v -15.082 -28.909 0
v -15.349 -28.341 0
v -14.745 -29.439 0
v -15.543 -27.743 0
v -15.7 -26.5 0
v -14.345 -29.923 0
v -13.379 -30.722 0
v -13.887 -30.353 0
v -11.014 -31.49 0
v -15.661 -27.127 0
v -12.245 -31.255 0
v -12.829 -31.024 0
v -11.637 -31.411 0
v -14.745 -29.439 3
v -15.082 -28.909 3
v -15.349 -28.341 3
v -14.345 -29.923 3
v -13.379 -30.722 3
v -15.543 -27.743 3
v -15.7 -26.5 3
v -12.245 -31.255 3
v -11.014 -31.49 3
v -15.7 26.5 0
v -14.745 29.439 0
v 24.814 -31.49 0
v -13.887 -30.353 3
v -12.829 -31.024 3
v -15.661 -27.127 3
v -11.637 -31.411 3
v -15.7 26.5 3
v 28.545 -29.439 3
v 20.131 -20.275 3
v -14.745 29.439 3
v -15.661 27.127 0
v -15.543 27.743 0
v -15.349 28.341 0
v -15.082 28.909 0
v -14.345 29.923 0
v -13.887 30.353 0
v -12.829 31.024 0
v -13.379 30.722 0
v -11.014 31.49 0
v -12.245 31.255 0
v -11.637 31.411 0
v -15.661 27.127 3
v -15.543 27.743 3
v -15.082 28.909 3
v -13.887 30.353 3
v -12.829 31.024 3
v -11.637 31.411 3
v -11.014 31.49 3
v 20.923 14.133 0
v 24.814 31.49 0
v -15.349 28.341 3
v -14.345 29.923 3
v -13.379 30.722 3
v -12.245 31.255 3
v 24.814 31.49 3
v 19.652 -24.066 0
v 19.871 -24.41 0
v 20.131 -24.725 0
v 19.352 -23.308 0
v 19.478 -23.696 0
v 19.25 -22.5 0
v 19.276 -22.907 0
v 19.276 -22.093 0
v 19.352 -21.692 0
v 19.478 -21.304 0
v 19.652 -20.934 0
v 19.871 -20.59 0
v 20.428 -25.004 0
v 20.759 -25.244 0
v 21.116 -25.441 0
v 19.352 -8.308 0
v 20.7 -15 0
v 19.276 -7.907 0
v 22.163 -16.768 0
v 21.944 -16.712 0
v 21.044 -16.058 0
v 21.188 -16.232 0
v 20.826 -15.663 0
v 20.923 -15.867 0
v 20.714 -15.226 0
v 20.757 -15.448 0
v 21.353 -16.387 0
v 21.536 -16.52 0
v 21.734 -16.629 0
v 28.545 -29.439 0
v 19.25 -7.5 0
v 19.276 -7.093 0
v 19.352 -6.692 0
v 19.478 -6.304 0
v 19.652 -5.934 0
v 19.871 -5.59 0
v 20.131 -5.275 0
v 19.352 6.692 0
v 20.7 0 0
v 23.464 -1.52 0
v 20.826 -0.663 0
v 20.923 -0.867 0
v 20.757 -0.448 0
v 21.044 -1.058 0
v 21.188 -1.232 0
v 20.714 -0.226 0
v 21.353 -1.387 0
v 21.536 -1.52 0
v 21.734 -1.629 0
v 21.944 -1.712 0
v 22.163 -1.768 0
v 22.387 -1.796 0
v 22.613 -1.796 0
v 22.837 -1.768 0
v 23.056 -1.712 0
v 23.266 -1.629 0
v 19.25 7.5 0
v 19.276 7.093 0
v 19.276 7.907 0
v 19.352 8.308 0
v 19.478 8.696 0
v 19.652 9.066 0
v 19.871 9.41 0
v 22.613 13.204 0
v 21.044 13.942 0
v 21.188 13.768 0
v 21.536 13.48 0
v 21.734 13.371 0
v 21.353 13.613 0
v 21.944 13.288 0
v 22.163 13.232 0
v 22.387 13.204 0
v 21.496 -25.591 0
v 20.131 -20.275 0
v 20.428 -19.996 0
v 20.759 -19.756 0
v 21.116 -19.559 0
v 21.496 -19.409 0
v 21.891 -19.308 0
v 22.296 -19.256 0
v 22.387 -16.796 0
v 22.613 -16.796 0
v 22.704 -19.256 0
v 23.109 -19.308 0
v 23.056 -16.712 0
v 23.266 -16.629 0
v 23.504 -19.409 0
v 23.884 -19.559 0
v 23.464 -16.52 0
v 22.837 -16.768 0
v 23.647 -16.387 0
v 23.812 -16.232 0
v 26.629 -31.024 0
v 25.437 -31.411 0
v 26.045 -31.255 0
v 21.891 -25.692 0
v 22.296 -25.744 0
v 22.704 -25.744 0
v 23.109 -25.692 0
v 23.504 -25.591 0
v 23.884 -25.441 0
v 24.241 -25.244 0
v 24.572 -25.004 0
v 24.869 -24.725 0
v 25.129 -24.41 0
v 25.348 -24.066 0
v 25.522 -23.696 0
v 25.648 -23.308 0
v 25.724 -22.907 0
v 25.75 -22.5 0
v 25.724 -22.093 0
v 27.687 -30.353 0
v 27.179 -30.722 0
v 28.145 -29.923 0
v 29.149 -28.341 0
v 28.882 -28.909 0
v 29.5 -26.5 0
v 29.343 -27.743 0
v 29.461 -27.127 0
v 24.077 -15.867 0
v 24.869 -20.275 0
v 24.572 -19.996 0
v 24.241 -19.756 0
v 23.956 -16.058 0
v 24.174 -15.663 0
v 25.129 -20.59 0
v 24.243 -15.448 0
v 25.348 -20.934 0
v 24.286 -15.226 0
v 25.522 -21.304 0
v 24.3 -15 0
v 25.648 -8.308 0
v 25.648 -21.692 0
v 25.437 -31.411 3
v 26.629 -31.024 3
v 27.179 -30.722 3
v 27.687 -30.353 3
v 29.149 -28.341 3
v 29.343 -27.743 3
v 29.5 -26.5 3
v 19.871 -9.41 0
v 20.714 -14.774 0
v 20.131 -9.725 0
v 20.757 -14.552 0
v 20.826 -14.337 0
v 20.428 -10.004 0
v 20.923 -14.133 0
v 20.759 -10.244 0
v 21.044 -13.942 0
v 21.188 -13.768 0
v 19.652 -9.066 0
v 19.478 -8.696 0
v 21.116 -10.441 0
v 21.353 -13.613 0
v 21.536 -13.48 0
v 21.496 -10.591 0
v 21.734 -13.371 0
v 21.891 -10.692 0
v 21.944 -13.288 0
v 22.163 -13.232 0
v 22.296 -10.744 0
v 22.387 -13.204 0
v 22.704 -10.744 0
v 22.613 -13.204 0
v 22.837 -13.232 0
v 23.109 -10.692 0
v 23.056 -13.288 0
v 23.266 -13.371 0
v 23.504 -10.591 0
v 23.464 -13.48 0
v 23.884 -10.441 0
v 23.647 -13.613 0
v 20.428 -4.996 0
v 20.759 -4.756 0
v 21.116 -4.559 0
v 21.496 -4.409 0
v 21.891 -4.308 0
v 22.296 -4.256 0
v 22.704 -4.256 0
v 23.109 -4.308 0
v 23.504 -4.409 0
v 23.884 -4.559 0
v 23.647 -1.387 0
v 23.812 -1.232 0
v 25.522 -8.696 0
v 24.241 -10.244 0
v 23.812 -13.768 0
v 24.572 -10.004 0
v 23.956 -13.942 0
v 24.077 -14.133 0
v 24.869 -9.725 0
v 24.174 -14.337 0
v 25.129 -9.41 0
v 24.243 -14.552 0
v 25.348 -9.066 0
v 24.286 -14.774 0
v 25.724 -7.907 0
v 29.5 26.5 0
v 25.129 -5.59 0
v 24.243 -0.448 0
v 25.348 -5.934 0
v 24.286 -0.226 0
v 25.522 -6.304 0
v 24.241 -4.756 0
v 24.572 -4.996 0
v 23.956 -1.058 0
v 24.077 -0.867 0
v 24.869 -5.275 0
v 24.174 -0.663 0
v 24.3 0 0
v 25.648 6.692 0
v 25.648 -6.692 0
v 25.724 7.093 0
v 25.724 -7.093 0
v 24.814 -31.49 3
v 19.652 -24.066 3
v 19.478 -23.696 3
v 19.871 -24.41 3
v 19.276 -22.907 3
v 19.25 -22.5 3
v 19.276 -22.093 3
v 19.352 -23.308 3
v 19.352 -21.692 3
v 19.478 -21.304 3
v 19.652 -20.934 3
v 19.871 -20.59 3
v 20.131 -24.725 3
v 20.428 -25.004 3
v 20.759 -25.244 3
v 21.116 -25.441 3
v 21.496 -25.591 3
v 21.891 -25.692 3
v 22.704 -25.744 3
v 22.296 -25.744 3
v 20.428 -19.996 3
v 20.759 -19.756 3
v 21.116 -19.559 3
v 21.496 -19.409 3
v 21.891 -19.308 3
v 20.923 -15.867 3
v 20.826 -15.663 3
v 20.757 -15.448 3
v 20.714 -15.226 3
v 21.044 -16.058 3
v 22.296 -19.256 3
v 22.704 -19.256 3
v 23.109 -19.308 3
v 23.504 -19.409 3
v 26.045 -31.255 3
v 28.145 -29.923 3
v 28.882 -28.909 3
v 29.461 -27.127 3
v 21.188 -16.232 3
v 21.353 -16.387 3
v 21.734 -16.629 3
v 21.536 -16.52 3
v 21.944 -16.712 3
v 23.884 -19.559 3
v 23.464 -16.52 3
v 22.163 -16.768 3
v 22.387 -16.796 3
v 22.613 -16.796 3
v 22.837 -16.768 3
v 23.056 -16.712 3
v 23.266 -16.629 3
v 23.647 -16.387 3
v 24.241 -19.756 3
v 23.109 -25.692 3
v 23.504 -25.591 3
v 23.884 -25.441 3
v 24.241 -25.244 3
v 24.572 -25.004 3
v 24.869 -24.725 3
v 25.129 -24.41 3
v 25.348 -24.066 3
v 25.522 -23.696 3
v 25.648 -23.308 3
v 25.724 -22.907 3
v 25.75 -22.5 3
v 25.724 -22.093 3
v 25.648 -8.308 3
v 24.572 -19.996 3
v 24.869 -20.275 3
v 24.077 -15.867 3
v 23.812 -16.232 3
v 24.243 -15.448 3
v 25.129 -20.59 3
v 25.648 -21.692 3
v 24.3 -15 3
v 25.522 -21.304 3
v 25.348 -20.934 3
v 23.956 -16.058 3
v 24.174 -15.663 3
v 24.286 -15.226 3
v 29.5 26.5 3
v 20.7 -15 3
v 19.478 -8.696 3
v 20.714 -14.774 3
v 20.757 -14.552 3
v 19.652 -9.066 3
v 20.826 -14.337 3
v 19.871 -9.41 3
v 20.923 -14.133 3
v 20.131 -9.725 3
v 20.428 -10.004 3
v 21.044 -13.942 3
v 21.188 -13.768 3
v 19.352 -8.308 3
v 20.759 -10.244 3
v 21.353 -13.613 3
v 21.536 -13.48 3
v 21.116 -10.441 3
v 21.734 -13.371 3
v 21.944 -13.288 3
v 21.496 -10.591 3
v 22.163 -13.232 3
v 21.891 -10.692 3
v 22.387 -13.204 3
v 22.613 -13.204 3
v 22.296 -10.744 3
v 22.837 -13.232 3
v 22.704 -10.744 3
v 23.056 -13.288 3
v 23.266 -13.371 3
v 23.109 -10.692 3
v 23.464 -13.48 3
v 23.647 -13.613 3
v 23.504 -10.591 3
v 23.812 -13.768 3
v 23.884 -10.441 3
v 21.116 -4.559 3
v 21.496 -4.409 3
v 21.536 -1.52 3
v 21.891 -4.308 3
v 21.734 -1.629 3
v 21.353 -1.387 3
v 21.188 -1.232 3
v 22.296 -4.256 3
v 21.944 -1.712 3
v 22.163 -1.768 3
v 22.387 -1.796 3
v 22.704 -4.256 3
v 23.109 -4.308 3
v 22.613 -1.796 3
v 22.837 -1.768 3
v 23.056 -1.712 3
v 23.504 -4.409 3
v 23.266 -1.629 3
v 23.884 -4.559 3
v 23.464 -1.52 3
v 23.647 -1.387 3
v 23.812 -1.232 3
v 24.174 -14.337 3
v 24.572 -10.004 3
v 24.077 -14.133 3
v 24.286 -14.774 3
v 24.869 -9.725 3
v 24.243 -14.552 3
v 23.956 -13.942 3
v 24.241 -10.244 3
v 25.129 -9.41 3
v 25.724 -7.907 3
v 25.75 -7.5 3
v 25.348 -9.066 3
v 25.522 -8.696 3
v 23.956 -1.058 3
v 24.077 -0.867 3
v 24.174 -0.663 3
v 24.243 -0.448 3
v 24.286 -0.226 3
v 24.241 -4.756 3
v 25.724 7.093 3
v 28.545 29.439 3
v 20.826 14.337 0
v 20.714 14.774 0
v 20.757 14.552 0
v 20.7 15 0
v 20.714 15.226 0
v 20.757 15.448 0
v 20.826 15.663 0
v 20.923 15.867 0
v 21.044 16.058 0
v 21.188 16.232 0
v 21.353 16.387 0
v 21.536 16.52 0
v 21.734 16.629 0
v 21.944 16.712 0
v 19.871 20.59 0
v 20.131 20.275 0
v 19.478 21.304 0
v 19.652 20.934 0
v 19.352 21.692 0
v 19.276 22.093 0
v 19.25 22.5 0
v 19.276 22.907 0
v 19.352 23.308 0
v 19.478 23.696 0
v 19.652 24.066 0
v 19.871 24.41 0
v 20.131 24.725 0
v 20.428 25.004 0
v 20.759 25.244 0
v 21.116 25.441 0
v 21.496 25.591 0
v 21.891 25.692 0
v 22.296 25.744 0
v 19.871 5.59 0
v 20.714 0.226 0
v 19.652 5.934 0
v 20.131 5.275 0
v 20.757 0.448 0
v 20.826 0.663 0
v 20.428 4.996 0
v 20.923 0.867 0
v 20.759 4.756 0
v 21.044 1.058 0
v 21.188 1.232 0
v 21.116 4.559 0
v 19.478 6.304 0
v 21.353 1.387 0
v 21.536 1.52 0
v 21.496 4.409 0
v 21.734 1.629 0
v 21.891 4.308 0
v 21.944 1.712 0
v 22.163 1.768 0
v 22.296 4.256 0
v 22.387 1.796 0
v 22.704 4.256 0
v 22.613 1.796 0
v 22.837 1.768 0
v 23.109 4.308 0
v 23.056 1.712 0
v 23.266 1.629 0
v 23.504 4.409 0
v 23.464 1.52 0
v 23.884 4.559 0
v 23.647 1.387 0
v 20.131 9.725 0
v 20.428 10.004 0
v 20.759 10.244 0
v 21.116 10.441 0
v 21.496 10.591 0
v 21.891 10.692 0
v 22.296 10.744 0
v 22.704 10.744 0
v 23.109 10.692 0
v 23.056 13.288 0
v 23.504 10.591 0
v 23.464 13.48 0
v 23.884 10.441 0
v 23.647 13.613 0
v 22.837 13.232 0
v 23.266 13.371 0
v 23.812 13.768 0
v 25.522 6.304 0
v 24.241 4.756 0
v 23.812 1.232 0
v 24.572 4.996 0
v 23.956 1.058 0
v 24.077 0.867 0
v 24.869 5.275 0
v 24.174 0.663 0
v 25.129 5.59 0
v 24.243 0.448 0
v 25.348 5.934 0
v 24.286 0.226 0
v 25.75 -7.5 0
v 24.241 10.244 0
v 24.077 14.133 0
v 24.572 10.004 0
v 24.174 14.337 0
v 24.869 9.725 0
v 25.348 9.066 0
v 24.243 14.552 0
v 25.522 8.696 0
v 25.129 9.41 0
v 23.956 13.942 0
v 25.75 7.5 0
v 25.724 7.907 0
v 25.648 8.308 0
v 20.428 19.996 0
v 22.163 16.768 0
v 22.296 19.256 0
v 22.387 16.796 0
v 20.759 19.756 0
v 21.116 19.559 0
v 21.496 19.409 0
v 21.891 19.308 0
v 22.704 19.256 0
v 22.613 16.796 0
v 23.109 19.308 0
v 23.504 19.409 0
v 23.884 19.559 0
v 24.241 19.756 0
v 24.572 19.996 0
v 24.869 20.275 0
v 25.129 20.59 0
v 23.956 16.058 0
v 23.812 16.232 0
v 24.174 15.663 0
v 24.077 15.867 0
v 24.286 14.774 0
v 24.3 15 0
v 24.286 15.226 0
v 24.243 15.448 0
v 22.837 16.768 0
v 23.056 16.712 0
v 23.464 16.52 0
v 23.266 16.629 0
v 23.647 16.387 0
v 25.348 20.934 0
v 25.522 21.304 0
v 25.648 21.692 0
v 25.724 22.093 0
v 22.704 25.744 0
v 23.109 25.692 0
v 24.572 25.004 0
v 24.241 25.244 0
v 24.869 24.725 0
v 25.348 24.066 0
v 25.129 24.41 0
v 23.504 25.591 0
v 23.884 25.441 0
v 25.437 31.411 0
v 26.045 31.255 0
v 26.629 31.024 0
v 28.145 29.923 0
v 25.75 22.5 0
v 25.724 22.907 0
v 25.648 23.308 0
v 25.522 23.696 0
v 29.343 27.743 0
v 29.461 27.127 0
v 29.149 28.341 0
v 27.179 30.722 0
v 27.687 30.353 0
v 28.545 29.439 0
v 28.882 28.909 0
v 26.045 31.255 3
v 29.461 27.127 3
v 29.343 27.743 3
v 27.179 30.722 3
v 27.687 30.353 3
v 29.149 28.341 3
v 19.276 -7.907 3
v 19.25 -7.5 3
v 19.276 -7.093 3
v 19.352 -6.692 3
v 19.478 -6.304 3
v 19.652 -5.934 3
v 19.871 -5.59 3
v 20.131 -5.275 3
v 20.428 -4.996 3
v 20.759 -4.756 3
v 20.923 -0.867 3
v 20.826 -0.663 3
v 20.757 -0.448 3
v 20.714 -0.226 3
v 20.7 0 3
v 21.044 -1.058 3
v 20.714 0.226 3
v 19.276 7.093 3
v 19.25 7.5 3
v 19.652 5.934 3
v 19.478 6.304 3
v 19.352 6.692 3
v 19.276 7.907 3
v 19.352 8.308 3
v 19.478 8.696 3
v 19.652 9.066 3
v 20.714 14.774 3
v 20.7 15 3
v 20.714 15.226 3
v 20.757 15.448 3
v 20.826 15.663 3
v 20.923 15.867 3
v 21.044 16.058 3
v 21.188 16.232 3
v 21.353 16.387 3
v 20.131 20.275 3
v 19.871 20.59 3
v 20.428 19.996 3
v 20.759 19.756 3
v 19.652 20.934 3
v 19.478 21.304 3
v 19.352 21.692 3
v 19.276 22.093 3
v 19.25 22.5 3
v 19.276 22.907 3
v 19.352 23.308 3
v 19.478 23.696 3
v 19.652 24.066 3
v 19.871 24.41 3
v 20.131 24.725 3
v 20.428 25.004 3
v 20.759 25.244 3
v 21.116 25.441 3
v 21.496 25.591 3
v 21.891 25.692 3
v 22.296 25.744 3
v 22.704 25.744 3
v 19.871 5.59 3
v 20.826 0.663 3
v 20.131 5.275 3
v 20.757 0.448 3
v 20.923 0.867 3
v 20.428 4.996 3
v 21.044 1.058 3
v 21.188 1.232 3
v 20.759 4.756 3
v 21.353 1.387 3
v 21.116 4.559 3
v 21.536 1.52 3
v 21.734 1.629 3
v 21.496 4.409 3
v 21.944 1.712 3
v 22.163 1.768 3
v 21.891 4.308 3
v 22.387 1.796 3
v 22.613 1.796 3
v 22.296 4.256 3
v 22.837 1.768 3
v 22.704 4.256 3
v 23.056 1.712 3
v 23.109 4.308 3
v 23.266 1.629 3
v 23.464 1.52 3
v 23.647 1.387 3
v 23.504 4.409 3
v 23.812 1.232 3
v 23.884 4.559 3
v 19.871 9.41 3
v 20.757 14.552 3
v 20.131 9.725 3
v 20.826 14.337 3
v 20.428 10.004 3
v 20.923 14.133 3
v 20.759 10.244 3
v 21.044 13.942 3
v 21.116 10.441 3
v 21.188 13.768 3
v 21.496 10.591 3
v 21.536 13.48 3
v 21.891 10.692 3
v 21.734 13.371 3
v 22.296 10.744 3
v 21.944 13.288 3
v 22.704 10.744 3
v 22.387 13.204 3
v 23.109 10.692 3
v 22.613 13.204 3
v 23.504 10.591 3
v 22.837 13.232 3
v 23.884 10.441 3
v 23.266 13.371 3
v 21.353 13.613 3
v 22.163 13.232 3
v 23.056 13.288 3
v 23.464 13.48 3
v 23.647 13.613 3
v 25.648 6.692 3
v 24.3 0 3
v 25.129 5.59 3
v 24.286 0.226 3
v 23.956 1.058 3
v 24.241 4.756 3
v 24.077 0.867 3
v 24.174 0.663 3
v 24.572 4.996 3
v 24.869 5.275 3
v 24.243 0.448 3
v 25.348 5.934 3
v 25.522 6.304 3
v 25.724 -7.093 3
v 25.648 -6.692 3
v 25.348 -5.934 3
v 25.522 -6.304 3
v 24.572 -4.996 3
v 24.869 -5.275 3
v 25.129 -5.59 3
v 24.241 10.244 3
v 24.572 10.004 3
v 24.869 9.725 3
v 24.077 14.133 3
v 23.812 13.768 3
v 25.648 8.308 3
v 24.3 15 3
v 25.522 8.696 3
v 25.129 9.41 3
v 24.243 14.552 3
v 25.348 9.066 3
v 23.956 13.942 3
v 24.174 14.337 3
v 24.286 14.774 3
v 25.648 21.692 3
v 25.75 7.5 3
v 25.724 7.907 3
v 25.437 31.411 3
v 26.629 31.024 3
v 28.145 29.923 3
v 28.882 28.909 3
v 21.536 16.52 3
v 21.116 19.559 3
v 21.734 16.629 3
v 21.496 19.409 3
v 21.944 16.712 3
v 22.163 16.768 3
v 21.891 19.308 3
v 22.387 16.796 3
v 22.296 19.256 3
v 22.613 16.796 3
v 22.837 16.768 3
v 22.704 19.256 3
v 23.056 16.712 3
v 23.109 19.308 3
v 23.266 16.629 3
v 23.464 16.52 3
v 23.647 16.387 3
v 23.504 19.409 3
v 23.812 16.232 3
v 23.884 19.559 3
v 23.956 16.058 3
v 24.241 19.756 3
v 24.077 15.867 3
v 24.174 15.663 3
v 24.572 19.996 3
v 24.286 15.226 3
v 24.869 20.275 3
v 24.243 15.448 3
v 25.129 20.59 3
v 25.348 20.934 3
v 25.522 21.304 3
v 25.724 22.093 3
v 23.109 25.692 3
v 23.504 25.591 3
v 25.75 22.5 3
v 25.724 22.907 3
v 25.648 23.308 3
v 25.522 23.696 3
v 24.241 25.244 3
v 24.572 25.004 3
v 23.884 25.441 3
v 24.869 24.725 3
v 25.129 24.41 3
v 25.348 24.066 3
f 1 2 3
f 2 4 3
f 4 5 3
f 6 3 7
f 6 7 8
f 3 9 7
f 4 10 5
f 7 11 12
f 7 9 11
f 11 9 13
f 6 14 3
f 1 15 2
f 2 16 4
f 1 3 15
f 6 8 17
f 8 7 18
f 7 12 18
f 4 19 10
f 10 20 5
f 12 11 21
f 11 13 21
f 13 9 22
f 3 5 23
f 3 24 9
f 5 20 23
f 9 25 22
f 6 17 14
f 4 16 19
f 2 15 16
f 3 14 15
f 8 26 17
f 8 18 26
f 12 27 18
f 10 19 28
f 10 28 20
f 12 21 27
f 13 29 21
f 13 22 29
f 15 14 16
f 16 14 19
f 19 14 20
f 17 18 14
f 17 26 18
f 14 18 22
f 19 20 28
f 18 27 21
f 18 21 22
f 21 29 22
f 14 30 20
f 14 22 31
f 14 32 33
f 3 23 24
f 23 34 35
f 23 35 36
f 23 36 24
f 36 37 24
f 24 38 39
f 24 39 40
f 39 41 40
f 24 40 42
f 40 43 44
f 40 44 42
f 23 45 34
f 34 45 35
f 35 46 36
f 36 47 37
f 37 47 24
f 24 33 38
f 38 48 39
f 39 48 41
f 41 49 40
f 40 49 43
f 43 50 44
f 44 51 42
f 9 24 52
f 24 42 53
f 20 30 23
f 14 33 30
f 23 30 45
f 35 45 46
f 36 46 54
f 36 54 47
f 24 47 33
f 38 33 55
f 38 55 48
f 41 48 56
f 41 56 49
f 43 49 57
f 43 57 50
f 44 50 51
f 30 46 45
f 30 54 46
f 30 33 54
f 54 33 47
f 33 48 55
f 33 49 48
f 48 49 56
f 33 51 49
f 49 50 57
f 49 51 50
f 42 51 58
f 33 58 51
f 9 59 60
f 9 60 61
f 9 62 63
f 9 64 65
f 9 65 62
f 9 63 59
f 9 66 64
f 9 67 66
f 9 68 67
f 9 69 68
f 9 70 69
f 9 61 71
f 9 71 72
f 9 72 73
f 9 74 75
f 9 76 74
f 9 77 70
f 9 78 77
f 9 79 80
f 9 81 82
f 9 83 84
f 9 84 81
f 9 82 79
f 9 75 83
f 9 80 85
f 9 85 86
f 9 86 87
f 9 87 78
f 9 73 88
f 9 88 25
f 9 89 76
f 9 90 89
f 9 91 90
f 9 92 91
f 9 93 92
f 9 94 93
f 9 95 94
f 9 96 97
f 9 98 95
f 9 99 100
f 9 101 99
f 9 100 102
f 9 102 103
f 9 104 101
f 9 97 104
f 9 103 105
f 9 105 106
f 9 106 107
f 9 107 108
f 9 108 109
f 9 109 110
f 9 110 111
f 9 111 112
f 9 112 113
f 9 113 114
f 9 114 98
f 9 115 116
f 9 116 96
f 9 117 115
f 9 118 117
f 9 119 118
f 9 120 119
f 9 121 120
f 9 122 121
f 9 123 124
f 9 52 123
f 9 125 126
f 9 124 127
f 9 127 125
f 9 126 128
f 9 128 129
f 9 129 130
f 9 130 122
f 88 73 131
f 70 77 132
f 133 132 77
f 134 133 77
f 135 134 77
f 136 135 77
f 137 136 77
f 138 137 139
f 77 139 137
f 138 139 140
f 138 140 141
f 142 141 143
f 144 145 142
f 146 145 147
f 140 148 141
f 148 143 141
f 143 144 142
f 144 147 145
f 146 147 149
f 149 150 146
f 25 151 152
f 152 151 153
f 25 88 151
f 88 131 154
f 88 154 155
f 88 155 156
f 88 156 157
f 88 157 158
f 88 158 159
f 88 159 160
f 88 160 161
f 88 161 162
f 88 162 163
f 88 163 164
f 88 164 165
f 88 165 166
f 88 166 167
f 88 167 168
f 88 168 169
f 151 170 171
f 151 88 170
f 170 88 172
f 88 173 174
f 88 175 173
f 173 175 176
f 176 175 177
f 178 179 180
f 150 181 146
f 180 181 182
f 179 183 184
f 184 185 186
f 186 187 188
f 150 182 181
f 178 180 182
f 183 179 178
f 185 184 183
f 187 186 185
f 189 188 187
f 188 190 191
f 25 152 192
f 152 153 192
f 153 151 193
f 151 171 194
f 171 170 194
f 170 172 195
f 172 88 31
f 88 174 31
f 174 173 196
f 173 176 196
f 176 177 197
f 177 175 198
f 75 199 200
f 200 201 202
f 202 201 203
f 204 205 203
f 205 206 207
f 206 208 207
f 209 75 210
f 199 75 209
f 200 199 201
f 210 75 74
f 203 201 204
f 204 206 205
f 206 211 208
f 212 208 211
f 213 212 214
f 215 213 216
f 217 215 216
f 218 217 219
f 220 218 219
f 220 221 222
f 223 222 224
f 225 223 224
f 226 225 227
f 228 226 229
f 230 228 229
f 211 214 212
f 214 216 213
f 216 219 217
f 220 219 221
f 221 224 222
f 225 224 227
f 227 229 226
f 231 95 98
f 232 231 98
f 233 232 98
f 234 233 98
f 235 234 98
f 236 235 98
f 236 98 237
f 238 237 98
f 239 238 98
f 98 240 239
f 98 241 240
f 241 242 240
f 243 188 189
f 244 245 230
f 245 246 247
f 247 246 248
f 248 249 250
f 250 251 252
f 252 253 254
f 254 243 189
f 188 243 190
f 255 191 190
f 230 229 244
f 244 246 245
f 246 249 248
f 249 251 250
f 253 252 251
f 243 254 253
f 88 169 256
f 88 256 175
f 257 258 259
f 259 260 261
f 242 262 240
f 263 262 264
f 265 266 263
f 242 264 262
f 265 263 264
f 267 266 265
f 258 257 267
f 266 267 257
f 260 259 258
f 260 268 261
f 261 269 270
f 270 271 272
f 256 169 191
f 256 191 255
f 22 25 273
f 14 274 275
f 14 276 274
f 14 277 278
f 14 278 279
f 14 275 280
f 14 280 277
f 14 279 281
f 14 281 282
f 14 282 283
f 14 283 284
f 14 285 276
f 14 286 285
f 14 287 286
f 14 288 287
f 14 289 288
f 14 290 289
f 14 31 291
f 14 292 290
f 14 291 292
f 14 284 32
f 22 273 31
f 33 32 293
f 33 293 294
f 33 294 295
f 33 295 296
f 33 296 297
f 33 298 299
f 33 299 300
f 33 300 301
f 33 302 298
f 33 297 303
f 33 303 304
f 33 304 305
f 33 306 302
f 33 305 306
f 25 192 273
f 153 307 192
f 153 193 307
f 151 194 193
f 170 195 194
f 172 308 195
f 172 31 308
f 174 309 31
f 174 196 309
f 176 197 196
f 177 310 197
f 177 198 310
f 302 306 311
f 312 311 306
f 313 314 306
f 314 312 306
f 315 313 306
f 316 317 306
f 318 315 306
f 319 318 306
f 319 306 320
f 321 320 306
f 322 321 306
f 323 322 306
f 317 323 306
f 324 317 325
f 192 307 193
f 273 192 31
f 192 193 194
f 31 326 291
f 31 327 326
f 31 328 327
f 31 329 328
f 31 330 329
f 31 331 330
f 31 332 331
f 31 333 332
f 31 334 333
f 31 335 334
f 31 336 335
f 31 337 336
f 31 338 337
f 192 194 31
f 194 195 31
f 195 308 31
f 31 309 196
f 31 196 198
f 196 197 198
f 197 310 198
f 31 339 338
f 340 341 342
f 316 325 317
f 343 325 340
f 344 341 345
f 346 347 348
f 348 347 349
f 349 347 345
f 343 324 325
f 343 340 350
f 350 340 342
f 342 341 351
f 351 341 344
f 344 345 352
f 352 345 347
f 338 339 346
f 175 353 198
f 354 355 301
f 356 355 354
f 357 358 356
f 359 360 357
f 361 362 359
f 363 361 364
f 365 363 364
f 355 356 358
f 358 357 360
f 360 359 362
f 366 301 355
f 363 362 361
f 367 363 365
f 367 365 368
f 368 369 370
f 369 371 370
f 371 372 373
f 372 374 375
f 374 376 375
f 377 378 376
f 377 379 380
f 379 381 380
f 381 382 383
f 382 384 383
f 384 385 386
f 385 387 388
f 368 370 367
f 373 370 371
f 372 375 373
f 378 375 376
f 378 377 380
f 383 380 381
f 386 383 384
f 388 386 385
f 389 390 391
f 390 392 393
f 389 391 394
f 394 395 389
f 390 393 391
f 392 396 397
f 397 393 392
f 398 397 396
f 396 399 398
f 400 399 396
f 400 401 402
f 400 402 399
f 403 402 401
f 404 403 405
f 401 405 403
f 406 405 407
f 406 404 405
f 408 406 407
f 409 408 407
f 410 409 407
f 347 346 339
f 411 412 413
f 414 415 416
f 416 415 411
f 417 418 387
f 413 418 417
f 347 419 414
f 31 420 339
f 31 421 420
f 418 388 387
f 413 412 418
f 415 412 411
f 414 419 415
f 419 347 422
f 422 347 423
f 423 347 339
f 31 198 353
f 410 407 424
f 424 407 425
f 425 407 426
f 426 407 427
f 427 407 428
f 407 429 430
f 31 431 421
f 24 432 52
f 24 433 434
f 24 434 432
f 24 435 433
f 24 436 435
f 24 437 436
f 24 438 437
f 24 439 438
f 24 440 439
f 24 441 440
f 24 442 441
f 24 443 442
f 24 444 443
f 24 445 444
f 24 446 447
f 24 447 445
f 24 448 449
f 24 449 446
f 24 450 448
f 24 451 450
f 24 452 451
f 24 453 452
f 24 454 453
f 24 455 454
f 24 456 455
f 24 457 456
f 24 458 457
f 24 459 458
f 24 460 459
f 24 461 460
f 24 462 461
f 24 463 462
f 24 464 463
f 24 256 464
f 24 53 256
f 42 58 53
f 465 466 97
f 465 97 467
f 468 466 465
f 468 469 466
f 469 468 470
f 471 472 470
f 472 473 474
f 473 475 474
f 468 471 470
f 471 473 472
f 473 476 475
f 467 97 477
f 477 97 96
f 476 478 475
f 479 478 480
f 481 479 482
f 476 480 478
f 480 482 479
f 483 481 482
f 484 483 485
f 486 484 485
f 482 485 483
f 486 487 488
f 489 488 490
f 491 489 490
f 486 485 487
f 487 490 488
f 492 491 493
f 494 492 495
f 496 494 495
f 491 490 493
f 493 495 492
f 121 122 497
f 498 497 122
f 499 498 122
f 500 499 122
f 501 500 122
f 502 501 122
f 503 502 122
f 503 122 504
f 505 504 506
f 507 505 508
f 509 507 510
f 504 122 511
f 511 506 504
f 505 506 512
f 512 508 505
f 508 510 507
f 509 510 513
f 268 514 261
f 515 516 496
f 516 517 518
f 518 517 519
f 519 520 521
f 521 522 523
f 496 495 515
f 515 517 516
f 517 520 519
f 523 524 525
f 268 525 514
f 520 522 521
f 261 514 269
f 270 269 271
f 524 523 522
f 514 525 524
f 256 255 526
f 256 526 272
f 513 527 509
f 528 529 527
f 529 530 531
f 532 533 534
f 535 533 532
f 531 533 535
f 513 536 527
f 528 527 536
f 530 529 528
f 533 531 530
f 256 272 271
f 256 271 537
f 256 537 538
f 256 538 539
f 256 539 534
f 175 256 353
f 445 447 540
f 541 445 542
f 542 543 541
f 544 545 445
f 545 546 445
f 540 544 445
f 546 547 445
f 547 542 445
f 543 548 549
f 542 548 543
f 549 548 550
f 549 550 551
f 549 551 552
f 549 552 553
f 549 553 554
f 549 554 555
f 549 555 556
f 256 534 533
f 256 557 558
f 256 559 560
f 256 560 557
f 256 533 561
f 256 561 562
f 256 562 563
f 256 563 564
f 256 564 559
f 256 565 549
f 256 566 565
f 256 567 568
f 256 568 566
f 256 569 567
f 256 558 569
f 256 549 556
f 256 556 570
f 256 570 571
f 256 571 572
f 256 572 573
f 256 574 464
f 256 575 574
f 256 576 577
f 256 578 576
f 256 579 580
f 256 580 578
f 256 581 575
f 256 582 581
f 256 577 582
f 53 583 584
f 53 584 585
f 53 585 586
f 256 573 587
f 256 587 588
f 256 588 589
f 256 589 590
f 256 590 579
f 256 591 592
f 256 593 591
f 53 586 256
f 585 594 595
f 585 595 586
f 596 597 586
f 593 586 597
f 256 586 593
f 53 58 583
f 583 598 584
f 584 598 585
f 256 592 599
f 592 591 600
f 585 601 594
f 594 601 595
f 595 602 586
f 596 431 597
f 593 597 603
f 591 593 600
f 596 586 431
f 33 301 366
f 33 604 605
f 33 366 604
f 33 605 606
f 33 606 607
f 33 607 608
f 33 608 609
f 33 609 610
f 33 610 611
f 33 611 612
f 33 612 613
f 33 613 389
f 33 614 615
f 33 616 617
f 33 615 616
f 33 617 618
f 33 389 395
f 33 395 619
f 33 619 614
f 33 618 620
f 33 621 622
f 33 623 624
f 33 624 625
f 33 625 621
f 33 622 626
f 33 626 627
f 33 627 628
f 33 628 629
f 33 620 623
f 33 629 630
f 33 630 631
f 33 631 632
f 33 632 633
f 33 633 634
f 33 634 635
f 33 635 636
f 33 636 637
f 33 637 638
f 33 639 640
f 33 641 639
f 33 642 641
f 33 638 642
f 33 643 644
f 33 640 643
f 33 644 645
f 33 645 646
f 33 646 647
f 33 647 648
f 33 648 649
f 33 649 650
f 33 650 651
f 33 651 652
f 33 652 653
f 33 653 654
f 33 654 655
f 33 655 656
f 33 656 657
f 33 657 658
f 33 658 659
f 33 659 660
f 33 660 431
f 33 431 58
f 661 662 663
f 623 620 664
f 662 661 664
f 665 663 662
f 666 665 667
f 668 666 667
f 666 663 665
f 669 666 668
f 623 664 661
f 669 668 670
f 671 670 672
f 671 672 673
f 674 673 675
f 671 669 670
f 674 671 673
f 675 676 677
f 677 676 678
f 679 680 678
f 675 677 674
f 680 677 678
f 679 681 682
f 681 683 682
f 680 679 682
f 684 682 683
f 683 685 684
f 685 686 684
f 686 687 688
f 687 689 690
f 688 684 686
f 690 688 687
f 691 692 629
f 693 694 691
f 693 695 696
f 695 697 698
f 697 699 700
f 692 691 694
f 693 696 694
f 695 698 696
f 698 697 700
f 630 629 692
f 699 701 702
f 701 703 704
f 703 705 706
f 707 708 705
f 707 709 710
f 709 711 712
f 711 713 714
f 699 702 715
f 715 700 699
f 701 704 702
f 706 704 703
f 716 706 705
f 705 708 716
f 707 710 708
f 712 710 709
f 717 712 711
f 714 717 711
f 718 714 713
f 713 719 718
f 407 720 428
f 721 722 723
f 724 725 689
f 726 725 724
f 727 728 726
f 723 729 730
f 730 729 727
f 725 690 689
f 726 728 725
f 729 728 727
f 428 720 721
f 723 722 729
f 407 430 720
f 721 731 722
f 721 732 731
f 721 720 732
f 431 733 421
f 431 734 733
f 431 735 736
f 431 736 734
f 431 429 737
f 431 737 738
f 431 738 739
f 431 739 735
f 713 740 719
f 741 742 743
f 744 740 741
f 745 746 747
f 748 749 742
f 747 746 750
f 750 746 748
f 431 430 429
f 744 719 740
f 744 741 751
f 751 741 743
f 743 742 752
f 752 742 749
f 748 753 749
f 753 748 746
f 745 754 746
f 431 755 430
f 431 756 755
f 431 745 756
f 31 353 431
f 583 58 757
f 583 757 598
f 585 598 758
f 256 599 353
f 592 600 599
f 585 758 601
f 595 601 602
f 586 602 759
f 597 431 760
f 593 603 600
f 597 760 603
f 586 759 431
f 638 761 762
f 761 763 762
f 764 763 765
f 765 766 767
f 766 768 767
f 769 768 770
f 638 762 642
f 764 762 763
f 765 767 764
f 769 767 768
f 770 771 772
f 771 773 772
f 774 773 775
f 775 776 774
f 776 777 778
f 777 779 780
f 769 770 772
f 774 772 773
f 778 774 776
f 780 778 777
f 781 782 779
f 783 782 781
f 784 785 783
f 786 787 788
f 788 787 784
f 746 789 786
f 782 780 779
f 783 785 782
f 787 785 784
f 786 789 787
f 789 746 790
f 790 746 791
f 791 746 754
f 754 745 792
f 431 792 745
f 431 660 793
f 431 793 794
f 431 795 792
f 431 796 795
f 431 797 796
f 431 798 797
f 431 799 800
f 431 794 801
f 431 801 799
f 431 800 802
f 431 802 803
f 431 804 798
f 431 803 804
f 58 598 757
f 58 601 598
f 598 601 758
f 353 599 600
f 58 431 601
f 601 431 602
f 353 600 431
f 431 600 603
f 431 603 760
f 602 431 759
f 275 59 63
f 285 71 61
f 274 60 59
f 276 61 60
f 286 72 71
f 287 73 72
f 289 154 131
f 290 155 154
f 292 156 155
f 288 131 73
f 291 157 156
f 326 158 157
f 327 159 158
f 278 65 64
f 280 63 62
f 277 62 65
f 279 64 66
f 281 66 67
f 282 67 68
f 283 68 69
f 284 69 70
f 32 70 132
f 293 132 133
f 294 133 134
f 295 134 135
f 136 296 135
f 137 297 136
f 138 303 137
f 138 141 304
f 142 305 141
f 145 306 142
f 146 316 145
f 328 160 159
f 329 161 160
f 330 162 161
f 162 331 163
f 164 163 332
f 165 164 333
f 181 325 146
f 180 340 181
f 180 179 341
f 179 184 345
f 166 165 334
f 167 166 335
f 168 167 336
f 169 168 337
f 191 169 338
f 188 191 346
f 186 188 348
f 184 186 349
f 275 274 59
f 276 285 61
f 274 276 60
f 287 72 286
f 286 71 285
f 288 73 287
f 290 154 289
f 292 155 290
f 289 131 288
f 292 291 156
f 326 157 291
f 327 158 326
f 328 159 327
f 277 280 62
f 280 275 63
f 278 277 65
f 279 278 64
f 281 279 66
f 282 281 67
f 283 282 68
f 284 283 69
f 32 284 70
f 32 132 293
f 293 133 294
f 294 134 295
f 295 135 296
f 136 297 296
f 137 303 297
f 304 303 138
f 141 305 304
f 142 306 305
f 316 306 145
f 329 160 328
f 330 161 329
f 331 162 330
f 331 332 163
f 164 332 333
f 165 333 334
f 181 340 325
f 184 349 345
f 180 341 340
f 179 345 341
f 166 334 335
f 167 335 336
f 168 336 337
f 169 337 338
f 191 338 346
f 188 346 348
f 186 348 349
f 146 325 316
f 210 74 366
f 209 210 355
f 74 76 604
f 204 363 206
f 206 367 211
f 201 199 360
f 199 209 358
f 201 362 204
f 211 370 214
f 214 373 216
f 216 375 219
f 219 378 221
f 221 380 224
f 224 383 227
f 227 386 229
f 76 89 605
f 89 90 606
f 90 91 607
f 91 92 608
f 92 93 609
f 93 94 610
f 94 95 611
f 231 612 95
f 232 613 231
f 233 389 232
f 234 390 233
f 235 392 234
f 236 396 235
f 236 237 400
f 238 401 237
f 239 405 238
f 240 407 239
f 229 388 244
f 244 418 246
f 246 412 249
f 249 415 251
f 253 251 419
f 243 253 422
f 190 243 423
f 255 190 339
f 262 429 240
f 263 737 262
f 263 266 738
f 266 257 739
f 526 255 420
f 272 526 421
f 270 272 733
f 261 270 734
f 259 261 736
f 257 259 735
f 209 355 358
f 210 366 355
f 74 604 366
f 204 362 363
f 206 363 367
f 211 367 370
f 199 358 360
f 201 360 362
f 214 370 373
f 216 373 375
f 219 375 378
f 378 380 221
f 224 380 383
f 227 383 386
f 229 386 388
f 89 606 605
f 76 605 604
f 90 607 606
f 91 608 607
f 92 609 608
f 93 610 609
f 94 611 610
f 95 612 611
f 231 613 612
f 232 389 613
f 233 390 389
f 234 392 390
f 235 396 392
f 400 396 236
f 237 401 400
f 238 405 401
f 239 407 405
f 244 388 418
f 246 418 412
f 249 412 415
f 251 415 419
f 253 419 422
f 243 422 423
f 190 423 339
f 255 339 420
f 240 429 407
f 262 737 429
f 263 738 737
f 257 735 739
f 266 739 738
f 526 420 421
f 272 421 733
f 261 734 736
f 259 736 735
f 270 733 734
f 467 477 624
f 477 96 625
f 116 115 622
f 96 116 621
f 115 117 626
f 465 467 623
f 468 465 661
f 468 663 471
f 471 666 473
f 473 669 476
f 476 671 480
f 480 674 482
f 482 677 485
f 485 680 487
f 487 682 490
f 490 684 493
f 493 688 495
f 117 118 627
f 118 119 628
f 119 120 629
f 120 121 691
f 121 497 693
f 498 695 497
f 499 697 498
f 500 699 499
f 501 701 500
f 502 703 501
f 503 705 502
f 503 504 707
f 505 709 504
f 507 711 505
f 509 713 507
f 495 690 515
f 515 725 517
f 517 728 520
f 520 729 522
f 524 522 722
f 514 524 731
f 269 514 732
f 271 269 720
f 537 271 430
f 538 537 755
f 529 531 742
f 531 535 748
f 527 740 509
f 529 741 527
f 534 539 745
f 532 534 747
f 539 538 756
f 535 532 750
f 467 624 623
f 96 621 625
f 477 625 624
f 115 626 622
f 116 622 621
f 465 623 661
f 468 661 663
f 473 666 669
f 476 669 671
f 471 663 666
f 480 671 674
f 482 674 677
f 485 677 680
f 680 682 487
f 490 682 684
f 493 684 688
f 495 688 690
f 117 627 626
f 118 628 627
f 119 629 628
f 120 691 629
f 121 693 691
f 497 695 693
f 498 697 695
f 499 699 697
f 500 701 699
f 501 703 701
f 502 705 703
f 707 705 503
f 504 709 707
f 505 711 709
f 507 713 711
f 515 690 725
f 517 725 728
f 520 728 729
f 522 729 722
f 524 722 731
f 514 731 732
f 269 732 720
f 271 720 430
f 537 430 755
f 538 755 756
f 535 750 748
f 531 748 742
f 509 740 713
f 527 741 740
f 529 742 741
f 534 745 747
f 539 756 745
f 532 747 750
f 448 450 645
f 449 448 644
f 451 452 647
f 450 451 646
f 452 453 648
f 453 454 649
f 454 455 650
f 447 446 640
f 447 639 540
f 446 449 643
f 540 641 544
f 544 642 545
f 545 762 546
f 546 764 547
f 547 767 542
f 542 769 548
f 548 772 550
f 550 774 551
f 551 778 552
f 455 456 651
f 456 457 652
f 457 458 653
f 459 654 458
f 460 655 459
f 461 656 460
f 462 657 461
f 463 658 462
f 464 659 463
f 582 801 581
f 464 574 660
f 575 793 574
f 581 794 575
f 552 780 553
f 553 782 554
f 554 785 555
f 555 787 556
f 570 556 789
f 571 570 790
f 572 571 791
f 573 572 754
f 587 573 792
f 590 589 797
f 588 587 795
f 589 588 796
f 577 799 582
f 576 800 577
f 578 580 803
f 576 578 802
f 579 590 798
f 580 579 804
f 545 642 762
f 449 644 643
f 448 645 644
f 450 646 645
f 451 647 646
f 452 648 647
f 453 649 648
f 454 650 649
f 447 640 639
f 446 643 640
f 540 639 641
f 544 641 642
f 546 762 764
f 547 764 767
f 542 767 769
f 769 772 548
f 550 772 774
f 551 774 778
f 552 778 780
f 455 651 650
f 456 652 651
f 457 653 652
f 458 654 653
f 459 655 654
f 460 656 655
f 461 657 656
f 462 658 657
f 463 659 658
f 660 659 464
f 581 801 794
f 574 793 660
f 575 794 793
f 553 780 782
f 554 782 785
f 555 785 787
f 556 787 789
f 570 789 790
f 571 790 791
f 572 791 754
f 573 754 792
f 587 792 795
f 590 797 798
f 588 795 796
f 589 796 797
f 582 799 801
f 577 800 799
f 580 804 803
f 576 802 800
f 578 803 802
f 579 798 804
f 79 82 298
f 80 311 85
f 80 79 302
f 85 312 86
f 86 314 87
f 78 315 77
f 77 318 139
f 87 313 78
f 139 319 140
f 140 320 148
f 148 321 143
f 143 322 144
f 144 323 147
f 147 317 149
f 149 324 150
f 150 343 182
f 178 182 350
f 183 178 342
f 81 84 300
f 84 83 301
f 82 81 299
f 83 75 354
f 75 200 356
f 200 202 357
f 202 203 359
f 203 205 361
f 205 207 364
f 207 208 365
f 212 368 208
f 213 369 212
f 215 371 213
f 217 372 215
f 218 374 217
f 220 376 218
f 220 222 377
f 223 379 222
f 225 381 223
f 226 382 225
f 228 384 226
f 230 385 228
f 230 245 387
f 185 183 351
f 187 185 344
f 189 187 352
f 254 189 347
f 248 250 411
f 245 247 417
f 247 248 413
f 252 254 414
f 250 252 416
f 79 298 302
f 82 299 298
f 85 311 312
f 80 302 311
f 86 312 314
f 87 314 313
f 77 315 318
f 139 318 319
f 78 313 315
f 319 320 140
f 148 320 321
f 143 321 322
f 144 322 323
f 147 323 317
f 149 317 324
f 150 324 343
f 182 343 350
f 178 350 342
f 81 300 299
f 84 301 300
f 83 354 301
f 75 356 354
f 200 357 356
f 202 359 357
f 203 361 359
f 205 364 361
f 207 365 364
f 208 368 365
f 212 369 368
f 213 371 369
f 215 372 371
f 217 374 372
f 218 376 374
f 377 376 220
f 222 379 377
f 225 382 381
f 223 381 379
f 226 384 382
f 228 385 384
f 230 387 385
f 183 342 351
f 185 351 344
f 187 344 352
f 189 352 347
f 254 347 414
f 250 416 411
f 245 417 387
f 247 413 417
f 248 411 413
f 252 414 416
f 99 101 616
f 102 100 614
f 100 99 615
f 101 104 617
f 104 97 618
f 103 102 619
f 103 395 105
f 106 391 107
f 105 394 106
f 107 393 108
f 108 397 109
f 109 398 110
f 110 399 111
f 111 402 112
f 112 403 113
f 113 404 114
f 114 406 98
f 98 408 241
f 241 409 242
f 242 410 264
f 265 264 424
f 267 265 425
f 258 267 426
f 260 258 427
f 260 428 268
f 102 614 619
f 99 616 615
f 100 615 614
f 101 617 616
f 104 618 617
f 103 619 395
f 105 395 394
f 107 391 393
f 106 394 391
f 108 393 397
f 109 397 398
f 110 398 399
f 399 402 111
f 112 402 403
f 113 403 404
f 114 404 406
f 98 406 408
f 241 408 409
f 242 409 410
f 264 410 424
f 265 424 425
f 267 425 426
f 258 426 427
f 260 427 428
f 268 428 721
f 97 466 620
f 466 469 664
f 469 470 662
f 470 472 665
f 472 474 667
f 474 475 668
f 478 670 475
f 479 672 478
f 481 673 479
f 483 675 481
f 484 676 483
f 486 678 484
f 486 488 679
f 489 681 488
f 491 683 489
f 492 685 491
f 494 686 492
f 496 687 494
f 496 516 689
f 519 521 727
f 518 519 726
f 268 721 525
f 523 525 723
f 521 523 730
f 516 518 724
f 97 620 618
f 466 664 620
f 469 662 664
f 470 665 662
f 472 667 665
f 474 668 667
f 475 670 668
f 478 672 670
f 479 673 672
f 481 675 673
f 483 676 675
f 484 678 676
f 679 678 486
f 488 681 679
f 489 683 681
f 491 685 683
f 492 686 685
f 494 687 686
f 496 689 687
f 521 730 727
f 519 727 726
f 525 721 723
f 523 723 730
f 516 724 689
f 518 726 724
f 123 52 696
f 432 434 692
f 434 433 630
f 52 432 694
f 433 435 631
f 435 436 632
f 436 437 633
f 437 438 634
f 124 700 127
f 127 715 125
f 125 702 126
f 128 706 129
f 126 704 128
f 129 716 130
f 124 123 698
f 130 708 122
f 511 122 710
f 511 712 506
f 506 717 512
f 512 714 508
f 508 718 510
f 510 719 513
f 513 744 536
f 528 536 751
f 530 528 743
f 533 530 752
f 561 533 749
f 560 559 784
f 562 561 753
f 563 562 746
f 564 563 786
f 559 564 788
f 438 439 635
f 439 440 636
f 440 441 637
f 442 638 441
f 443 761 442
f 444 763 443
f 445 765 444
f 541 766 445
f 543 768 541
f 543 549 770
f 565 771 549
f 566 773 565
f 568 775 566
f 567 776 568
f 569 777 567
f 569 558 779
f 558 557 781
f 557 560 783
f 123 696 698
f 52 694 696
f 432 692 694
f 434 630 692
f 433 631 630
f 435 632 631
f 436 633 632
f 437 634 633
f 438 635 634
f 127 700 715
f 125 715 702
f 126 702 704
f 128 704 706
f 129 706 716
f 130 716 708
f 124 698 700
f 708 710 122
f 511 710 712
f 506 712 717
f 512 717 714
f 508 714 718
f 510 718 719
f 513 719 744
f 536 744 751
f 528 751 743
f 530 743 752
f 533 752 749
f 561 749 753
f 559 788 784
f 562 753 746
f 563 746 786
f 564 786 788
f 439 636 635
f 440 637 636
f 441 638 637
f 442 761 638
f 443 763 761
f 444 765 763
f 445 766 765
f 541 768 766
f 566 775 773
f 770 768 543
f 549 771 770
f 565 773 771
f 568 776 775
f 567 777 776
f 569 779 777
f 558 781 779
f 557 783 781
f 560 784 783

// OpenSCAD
$fn = 50;

difference() {
	union() {
		translate(v = [6.9, 0.0, 0]) {
			hull() {
				translate(v = [-17.6, 26.5, 0]) {
					cylinder(h = 3, r = 5);
				}
				translate(v = [17.6, 26.5, 0]) {
					cylinder(h = 3, r = 5);
				}
				translate(v = [-17.6, -26.5, 0]) {
					cylinder(h = 3, r = 5);
				}
				translate(v = [17.6, -26.5, 0]) {
					cylinder(h = 3, r = 5);
				}
			}
		}
	}
	union() {
		translate(v = [22.5, -22.5, -1]) {
			cylinder(h = 5, r = 3.25);
		}
		translate(v = [22.5, -7.5, -1]) {
			cylinder(h = 5, r = 3.25);
		}
		translate(v = [22.5, 7.5, -1]) {
			cylinder(h = 5, r = 3.25);
		}
		translate(v = [22.5, 22.5, -1]) {
			cylinder(h = 5, r = 3.25);
		}
		translate(v = [22.5, -15.0, -1]) {
			cylinder(h = 5, r = 1.8);
		}
		translate(v = [22.5, 0.0, -1]) {
			cylinder(h = 5, r = 1.8);
		}
		translate(v = [22.5, 15.0, -1]) {
			cylinder(h = 5, r = 1.8);
		}
	}
}
